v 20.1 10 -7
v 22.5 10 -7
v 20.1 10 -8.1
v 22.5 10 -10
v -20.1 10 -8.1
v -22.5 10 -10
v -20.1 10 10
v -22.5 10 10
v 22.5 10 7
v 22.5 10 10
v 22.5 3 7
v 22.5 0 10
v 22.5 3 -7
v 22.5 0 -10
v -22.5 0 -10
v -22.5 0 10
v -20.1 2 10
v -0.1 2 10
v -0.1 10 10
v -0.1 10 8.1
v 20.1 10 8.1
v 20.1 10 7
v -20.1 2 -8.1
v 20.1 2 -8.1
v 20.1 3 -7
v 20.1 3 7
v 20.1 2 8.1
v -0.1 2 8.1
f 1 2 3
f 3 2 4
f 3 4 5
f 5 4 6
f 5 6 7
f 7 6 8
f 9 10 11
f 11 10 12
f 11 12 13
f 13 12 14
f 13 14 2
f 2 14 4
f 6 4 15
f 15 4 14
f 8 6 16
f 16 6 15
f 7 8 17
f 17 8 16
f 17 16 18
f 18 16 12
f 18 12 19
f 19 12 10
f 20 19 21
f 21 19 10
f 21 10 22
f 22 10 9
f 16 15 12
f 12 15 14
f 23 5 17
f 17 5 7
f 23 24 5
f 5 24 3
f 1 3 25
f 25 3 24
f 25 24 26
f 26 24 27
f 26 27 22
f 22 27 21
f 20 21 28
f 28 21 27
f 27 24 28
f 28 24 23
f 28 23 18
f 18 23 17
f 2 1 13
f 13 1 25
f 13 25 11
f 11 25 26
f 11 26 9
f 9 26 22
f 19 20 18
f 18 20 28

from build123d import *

# Parameters (mm, degrees)
CROQUIS1_W              = 45
CROQUIS1_H              = 20
SALIENTE_EXTRUIR1_DEPTH = 10
CROQUIS2_W              = 40.2
CROQUIS2_H              = 16.2
CORTAR_EXTRUIR1_DEPTH   = 8
CROQUIS3_W              = 14
CROQUIS3_H              = 7
CORTAR_EXTRUIR2_DEPTH   = 8
CROQUIS4_W              = 20
CROQUIS4_H              = 8
CORTAR_EXTRUIR3_DEPTH   = 8


with BuildPart() as part:
    # Croquis1 → Saliente-Extruir1 (new body)
    with BuildSketch(Plane(origin=(0, 0, 0), x_dir=(1, 0, 0), z_dir=(0, 1, 0))):
        Rectangle(CROQUIS1_W, CROQUIS1_H)
    extrude(amount=SALIENTE_EXTRUIR1_DEPTH)

    # Croquis2 → Cortar-Extruir1 (cut)
    with BuildSketch(Plane(origin=(0, 10, 0), x_dir=(1, 0, 0), z_dir=(0, 1, 0))):
        Rectangle(CROQUIS2_W, CROQUIS2_H)
    extrude(amount=-CORTAR_EXTRUIR1_DEPTH, mode=Mode.SUBTRACT)

    # Croquis3 → Cortar-Extruir2 (cut)
    with BuildSketch(Plane(origin=(22.5, 0, 0), x_dir=(0, 0, -1), z_dir=(1, 0, 0))):
        with Locations((0, 6.5)):
            Rectangle(CROQUIS3_W, CROQUIS3_H)
    extrude(amount=-CORTAR_EXTRUIR2_DEPTH, mode=Mode.SUBTRACT)

    # Croquis4 → Cortar-Extruir3 (cut)
    with BuildSketch(Plane.XY.offset(10)):
        with Locations((-10.1, 6)):
            Rectangle(CROQUIS4_W, CROQUIS4_H)
    extrude(amount=-CORTAR_EXTRUIR3_DEPTH, mode=Mode.SUBTRACT)


solid = part.part
